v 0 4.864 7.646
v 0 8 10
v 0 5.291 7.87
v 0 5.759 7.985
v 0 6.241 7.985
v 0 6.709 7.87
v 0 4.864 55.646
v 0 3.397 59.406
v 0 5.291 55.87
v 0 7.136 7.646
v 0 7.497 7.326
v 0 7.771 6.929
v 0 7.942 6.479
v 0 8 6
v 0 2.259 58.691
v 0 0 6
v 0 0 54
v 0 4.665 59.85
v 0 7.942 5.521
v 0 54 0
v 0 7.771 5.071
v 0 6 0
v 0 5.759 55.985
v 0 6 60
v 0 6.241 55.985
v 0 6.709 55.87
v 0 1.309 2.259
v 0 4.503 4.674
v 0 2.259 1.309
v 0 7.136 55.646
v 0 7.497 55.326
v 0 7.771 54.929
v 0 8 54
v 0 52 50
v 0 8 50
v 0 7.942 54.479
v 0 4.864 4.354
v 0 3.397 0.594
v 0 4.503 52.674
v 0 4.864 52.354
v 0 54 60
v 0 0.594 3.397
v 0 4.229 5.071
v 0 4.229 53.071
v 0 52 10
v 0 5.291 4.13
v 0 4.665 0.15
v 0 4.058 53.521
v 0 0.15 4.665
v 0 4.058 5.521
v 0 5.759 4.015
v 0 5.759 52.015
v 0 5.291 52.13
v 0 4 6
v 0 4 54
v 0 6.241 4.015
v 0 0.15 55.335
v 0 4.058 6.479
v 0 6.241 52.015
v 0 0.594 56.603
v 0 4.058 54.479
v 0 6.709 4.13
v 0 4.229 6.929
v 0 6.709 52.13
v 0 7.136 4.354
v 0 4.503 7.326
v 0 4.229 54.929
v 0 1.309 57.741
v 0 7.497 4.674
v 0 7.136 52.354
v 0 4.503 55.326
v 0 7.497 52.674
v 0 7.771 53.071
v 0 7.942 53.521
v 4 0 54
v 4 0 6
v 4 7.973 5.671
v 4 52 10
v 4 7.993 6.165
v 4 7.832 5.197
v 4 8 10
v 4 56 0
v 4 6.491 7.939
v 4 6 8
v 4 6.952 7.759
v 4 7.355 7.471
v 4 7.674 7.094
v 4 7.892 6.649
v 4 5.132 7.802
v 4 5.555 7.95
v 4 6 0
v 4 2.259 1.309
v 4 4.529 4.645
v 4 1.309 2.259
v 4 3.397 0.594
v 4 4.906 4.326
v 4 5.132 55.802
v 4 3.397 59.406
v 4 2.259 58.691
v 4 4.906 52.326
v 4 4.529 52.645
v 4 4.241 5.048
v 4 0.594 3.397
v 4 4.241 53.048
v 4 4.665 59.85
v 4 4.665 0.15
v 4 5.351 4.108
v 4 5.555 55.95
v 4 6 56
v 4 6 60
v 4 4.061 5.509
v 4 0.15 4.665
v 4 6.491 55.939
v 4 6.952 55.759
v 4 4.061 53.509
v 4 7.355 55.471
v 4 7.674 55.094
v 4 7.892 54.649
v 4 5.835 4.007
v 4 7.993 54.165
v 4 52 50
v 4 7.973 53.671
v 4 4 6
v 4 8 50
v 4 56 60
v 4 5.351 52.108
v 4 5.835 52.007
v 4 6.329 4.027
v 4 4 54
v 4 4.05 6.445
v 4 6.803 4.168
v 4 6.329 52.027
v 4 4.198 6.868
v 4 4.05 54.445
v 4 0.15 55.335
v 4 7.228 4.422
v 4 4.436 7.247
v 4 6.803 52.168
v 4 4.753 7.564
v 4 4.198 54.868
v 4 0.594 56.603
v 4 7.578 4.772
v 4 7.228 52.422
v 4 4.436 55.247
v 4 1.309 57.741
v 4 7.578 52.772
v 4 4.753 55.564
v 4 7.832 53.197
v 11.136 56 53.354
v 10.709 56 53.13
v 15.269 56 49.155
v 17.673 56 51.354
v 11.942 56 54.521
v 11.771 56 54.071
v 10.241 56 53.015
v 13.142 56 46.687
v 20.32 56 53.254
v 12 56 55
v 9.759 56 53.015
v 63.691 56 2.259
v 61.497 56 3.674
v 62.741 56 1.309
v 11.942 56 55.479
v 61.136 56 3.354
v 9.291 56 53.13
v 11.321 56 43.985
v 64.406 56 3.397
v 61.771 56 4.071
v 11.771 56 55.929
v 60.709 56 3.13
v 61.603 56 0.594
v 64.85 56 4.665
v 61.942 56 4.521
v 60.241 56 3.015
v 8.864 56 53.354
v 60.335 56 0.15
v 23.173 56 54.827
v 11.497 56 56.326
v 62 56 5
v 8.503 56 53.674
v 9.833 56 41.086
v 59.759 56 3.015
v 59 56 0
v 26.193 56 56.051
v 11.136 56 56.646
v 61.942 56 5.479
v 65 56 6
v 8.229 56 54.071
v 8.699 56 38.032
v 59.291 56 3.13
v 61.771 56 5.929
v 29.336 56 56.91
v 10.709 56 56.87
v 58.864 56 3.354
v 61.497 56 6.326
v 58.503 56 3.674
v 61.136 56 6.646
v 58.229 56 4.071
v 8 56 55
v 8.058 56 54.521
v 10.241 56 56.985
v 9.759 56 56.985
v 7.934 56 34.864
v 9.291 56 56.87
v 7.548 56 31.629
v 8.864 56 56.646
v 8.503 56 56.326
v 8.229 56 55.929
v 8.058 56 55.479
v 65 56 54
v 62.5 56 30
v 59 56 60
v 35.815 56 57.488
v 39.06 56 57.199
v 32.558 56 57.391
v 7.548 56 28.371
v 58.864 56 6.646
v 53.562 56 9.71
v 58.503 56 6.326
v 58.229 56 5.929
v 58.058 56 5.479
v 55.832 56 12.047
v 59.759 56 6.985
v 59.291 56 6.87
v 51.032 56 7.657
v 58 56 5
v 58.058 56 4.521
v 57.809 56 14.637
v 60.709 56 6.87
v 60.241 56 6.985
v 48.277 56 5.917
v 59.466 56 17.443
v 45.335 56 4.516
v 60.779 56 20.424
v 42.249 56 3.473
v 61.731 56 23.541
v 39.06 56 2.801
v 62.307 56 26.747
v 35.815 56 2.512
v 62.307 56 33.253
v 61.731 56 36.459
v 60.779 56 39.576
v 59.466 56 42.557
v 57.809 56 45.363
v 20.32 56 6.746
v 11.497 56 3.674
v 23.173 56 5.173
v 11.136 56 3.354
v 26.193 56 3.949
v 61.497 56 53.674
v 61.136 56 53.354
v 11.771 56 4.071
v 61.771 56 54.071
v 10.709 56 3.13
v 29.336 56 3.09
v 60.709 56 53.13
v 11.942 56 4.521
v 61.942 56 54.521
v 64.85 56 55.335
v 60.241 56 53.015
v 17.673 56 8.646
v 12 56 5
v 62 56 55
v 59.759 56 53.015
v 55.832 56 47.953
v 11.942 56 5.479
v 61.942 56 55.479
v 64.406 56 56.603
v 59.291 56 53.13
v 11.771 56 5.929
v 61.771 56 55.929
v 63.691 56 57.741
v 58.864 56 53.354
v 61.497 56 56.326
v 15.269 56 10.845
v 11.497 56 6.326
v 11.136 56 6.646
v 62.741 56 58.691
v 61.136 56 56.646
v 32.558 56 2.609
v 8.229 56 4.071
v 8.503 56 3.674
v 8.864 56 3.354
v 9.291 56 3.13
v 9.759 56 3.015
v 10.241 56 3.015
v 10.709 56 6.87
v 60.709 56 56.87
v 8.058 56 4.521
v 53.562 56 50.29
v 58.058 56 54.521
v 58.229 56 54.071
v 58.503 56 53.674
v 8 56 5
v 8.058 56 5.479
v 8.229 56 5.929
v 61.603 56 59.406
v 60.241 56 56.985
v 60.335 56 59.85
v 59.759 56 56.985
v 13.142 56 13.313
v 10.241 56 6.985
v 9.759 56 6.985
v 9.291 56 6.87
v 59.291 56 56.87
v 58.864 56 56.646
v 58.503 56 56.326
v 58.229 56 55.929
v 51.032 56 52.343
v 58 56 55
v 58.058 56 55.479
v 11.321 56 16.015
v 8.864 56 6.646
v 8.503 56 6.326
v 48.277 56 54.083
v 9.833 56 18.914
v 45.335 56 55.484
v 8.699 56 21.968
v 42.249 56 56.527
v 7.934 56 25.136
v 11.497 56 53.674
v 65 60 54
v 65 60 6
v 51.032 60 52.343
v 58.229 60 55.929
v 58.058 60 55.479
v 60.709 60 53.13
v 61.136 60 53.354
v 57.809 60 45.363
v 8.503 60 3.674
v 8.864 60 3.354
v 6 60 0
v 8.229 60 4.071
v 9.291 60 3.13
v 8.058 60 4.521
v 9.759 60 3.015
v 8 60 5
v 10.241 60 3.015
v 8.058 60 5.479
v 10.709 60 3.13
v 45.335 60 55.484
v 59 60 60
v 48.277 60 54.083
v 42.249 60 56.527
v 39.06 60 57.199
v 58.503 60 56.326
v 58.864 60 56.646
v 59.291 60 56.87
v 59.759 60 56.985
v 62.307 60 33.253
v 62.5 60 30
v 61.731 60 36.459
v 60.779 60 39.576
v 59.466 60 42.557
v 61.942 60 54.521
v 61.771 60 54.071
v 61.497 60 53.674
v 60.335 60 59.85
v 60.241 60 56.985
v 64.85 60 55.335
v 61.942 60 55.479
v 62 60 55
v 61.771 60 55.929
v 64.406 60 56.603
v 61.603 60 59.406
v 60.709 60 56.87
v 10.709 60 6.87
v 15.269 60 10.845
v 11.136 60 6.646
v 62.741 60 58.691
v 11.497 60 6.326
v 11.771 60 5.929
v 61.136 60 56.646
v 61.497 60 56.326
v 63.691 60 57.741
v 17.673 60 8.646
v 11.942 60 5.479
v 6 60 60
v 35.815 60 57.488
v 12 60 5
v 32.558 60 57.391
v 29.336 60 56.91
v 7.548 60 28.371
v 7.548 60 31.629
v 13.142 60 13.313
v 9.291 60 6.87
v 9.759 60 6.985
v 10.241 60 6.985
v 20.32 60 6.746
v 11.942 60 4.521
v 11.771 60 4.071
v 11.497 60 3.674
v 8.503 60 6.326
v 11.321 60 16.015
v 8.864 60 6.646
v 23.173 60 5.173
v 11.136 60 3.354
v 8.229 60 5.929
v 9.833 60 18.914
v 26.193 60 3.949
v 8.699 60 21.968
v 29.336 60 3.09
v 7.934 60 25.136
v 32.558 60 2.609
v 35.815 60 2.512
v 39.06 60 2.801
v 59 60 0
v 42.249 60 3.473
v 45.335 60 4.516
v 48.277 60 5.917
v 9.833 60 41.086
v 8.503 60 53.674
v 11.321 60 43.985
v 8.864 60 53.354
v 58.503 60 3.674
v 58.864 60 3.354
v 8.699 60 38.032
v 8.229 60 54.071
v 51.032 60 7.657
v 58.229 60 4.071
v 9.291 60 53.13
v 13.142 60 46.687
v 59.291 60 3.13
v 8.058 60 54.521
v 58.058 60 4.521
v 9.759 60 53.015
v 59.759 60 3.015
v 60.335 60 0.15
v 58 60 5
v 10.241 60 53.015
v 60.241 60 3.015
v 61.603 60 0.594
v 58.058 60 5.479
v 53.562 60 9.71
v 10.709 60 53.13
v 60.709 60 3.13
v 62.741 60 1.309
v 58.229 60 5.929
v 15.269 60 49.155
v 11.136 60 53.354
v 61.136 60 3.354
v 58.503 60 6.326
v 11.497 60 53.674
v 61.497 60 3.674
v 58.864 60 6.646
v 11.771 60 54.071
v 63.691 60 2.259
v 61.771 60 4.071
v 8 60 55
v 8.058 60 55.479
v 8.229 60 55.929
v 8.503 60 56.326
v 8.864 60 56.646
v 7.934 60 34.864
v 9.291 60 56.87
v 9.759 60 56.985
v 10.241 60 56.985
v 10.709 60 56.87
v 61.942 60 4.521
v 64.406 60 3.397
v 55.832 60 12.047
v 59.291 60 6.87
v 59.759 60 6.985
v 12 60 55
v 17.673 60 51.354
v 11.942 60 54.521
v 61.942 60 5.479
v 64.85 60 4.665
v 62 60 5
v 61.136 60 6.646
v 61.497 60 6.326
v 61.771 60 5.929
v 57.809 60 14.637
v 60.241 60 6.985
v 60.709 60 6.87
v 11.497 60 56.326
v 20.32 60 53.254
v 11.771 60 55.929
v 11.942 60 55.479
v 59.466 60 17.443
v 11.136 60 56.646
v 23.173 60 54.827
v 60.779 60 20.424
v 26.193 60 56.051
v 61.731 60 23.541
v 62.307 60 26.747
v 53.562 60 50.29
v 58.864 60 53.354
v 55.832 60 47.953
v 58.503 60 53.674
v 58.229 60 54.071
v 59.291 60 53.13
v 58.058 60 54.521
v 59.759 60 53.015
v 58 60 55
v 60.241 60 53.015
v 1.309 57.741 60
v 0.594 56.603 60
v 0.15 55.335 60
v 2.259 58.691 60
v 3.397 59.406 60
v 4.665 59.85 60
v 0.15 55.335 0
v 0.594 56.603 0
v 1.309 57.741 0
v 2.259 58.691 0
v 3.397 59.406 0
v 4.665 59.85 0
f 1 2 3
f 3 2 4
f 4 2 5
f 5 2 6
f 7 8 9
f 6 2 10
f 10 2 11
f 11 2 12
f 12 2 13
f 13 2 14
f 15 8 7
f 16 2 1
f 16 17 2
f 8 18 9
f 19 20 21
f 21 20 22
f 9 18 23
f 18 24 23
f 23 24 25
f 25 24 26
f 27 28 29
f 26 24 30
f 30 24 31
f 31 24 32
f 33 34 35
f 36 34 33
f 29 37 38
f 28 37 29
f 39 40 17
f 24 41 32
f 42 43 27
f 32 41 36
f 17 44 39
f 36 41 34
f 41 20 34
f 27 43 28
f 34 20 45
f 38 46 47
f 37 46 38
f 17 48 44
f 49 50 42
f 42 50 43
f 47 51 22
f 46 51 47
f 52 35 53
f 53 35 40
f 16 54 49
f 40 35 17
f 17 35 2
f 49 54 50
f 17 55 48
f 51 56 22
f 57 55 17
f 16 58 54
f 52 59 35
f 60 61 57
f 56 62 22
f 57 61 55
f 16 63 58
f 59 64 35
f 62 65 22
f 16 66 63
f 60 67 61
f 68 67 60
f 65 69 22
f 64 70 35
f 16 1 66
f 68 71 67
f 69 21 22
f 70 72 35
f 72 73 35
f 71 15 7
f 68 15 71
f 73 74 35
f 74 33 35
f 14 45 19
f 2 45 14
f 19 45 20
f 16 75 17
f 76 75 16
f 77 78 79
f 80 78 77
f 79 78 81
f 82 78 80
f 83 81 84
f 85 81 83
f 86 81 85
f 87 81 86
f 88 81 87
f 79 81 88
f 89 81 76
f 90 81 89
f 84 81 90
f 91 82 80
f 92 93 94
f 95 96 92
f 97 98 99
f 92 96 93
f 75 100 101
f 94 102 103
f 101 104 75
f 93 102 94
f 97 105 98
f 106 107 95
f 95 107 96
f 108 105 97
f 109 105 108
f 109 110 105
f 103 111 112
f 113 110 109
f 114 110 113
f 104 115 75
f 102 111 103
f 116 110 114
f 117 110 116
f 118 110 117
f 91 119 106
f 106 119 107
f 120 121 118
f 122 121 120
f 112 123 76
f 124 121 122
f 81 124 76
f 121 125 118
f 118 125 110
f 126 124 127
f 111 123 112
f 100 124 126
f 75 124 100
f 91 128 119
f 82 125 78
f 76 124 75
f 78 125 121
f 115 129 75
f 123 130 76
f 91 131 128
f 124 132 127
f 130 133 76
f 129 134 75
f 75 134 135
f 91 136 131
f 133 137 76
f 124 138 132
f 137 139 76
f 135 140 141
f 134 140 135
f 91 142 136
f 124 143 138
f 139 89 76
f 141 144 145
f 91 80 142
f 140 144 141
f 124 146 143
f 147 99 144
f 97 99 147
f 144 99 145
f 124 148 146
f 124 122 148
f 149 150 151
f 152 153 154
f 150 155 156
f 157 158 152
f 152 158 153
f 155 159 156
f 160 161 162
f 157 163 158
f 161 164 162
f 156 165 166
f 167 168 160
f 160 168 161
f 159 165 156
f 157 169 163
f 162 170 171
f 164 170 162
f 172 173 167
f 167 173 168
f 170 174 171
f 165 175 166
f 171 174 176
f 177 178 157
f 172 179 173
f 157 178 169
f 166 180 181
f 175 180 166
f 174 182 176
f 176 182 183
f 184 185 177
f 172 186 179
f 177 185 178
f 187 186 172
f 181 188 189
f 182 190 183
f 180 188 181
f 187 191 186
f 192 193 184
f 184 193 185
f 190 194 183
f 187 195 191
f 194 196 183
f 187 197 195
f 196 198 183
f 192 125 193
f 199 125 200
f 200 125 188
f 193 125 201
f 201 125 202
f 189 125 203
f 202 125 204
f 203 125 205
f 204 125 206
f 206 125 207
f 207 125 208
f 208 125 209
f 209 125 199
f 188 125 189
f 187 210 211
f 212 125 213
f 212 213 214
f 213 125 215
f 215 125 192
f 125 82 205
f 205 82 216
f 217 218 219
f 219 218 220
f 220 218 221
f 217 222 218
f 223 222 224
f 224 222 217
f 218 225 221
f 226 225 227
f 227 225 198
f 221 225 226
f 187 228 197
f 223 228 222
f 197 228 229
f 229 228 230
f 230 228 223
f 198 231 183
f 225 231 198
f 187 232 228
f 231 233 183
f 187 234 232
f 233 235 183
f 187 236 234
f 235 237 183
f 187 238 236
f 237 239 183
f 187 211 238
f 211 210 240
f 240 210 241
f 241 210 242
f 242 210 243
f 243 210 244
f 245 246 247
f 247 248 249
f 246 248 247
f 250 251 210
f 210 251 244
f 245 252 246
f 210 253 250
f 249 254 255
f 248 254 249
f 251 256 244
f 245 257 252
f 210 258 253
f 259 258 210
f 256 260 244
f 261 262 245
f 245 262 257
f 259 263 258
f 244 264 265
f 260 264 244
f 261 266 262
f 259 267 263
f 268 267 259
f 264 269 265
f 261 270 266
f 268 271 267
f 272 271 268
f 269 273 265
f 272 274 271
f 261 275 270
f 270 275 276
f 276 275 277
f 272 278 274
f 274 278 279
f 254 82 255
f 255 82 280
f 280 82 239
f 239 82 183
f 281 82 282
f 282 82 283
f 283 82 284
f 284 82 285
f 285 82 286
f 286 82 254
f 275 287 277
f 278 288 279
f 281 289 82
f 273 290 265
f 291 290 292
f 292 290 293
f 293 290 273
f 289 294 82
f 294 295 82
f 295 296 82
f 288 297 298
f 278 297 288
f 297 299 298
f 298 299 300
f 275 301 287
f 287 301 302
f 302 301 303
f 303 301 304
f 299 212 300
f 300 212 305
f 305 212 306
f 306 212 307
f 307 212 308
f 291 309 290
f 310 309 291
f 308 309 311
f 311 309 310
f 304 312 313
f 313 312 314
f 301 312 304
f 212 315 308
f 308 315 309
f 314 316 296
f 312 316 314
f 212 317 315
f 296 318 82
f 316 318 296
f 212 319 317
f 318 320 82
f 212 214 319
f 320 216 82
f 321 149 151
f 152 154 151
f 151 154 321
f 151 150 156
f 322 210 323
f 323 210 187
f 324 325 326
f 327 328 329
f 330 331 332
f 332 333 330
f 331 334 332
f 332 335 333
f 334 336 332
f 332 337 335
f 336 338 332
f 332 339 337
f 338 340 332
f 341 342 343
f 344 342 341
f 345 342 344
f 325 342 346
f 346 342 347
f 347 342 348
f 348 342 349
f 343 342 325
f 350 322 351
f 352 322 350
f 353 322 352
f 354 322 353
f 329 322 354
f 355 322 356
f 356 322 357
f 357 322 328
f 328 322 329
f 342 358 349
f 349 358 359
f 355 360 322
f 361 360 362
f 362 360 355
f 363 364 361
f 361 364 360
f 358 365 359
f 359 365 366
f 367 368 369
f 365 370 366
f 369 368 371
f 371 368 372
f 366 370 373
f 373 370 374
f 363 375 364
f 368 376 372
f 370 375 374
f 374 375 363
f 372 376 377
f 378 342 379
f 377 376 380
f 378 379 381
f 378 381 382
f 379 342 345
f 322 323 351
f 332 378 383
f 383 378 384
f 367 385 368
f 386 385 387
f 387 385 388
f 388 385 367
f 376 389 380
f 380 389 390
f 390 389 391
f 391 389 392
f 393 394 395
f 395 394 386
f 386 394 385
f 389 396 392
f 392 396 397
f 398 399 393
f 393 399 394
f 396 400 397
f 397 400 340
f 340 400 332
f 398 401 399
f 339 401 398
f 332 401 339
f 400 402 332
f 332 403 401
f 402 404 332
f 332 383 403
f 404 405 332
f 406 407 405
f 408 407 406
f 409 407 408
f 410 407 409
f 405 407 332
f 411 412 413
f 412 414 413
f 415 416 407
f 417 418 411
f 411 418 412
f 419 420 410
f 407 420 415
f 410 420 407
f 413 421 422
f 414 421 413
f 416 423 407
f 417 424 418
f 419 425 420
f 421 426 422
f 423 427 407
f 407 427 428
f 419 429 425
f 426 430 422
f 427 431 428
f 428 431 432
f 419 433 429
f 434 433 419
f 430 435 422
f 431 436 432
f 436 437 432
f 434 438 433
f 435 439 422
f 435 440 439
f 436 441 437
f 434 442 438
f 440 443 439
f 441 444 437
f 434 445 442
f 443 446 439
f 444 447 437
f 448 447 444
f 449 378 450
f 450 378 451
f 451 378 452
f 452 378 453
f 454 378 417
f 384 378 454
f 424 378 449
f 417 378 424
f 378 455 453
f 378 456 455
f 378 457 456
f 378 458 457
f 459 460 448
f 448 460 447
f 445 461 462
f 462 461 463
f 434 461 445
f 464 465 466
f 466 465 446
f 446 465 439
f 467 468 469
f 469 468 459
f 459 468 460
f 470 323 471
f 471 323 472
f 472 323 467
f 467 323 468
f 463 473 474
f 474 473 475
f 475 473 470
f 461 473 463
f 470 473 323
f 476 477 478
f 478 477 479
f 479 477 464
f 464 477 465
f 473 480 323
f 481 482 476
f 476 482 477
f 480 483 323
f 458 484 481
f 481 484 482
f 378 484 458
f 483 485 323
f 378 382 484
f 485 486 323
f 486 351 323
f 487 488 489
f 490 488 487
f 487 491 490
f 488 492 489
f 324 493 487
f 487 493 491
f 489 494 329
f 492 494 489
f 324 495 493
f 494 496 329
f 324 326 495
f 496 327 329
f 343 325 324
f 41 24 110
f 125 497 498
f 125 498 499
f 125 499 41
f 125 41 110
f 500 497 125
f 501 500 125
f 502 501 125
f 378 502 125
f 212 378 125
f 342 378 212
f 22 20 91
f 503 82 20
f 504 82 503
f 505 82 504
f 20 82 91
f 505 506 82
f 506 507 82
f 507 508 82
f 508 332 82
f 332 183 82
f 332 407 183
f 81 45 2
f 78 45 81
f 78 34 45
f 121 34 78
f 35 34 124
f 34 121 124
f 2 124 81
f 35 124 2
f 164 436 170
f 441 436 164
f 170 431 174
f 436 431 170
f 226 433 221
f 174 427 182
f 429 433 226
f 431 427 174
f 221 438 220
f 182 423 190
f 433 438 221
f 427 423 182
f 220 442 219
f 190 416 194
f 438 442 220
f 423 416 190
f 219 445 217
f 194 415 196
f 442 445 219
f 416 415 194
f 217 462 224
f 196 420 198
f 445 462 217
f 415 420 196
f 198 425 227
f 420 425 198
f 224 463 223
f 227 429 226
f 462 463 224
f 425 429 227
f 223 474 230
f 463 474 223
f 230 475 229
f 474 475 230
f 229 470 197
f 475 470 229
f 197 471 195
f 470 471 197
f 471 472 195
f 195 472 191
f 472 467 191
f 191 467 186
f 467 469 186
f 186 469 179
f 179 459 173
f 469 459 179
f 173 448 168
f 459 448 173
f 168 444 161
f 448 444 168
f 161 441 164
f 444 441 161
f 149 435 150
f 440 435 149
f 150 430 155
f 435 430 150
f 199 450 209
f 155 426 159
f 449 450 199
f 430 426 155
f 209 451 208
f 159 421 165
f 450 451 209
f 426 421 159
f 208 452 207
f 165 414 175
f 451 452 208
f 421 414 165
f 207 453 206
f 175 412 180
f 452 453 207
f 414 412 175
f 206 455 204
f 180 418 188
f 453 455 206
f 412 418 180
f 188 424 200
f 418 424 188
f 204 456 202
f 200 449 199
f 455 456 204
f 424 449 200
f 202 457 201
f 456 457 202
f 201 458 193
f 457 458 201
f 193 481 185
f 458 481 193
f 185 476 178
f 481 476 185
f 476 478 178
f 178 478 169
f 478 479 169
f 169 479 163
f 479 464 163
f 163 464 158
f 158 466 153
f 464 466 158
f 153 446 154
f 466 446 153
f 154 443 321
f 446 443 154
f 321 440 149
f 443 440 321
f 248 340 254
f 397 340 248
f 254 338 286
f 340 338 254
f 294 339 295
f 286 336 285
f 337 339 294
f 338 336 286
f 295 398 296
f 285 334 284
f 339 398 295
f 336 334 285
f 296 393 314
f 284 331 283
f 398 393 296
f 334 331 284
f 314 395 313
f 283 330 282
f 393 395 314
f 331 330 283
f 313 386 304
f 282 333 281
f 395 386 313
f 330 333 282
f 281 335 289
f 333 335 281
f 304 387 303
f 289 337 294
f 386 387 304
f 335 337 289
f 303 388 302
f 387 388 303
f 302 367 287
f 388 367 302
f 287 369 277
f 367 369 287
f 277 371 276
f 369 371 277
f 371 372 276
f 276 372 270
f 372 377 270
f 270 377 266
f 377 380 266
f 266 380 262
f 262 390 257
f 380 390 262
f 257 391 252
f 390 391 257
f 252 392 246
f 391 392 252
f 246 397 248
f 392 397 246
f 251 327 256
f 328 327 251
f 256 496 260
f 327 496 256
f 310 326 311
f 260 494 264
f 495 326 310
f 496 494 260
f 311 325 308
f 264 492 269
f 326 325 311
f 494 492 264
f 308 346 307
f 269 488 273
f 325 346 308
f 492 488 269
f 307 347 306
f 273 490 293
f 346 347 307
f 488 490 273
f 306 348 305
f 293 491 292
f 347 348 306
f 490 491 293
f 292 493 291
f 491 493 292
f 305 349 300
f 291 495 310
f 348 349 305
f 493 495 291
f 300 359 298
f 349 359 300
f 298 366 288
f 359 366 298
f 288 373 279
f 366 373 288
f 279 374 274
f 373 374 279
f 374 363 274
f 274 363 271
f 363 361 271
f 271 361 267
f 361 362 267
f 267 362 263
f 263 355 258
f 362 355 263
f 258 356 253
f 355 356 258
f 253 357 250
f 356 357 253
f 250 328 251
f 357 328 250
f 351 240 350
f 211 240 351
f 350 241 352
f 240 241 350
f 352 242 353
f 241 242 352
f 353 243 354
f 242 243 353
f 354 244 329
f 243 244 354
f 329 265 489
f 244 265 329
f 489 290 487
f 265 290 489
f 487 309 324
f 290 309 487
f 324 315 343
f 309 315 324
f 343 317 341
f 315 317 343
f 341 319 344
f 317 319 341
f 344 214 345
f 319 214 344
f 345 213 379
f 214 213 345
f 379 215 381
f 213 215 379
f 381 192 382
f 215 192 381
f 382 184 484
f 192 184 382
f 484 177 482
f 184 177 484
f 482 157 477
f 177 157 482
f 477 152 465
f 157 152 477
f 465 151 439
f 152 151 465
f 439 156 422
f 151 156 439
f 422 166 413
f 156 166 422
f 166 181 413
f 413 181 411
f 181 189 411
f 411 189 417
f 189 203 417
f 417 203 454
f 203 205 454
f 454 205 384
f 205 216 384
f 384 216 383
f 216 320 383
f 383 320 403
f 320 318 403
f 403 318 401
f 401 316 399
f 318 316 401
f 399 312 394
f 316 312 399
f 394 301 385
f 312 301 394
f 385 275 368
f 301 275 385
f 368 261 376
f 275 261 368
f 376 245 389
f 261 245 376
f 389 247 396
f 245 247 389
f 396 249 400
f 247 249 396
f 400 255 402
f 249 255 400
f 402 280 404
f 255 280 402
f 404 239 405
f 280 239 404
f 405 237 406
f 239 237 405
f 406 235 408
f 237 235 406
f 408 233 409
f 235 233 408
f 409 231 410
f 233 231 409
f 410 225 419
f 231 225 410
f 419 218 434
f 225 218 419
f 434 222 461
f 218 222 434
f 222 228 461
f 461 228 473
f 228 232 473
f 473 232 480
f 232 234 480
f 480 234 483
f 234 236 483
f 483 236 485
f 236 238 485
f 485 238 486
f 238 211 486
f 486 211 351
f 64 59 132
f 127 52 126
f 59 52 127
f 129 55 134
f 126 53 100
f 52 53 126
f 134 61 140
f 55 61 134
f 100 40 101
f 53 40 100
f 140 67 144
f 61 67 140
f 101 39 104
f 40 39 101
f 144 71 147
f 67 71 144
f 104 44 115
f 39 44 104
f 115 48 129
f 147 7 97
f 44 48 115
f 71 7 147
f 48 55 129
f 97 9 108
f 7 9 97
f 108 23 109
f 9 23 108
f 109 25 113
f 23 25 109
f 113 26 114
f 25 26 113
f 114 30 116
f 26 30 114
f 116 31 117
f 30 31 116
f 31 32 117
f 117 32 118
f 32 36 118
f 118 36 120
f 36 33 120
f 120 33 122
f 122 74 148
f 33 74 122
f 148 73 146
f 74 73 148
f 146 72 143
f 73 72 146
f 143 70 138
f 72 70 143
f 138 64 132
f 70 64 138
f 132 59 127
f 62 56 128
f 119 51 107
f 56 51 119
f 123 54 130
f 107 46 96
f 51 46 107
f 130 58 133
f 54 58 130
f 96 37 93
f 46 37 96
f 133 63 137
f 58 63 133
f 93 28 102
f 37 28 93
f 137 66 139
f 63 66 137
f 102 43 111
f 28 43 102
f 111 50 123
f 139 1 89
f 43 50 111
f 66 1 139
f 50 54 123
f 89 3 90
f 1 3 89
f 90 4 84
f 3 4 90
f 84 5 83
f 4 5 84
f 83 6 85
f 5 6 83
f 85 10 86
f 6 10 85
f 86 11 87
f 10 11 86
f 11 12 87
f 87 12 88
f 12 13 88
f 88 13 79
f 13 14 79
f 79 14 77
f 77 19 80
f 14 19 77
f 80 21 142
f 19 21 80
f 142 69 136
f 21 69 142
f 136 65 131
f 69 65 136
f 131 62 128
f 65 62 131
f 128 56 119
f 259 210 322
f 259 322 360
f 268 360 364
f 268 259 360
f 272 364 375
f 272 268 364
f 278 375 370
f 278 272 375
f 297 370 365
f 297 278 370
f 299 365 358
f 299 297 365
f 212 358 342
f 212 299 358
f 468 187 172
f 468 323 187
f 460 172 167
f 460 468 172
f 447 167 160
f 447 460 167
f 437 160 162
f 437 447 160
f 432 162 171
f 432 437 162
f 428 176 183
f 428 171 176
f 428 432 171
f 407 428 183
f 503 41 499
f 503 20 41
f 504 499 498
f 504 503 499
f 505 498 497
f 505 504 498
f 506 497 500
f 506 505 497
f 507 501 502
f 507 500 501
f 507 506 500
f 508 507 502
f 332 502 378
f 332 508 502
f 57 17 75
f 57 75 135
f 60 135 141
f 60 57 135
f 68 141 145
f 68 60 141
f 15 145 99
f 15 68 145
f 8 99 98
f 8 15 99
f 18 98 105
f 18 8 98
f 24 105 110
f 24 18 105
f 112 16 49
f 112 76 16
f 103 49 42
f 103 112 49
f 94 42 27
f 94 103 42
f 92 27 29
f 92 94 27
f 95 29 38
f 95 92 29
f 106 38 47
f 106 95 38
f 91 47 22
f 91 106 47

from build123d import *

# Parameters (mm, degrees)
RESSALTO_EXTRUS_O1_DEPTH = 60
ESBO_O2_W                = 40
ESBO_O2_H                = 44
CORTE_EXTRUS_O1_DEPTH    = 66
CORTE_EXTRUS_O3_REACH    = 62
ESBO_O4_R                = 2
ESBO_O5_R                = 27.5
CORTE_EXTRUS_O4_DEPTH    = 5
ESBO_O6_R                = 2
CORTE_EXTRUS_O5_DEPTH    = 10
FILETE2_R                = 6


with BuildPart() as part:
    # Esboço1 → Ressalto-extrusão1 (new body)
    with BuildSketch(Plane.XY):
        Polygon((0, 0), (4, 0), (4, 56), (65, 56), (65, 60), (0, 60), align=None)
    extrude(amount=RESSALTO_EXTRUS_O1_DEPTH)

    # Esboço2 → Corte-extrusão1 (cut, through all)
    with BuildSketch(Plane.ZY):
        with Locations((30, 30)):
            Rectangle(ESBO_O2_W, ESBO_O2_H)
    extrude(amount=-CORTE_EXTRUS_O1_DEPTH, mode=Mode.SUBTRACT)

    # Esboço4 → Corte-extrusão3 (cut, up to next)
    with BuildSketch(Plane.ZX.offset(60), mode=Mode.PRIVATE) as corte_extrus_o3_sk1:
        with Locations((5, 60)):
            Circle(ESBO_O4_R)
    corte_extrus_o3_tool1 = extrude(corte_extrus_o3_sk1.sketch, amount=-CORTE_EXTRUS_O3_REACH, mode=Mode.PRIVATE) & part.part
    add(corte_extrus_o3_tool1.solids().sort_by_distance((60, 60, 5))[0], mode=Mode.SUBTRACT)
    # Esboço4 → Corte-extrusão3 (cut, up to next)
    with BuildSketch(Plane.ZX.offset(60), mode=Mode.PRIVATE) as corte_extrus_o3_sk2:
        with Locations((55, 60)):
            Circle(ESBO_O4_R)
    corte_extrus_o3_tool2 = extrude(corte_extrus_o3_sk2.sketch, amount=-CORTE_EXTRUS_O3_REACH, mode=Mode.PRIVATE) & part.part
    add(corte_extrus_o3_tool2.solids().sort_by_distance((60, 60, 55))[0], mode=Mode.SUBTRACT)
    # Esboço4 → Corte-extrusão3 (cut, up to next)
    with BuildSketch(Plane.ZX.offset(60), mode=Mode.PRIVATE) as corte_extrus_o3_sk3:
        with Locations((5, 10)):
            Circle(ESBO_O4_R)
    corte_extrus_o3_tool3 = extrude(corte_extrus_o3_sk3.sketch, amount=-CORTE_EXTRUS_O3_REACH, mode=Mode.PRIVATE) & part.part
    add(corte_extrus_o3_tool3.solids().sort_by_distance((10, 60, 5))[0], mode=Mode.SUBTRACT)
    # Esboço4 → Corte-extrusão3 (cut, up to next)
    with BuildSketch(Plane.ZX.offset(60), mode=Mode.PRIVATE) as corte_extrus_o3_sk4:
        with Locations((55, 10)):
            Circle(ESBO_O4_R)
    corte_extrus_o3_tool4 = extrude(corte_extrus_o3_sk4.sketch, amount=-CORTE_EXTRUS_O3_REACH, mode=Mode.PRIVATE) & part.part
    add(corte_extrus_o3_tool4.solids().sort_by_distance((10, 60, 55))[0], mode=Mode.SUBTRACT)

    # Esboço5 → Corte-extrusão4 (cut, through all)
    with BuildSketch(Plane(origin=(0, 56, 0), x_dir=(0, 0, -1), z_dir=(0, -1, 0))):
        with Locations((-30, 35)):
            Circle(ESBO_O5_R)
    extrude(amount=-CORTE_EXTRUS_O4_DEPTH, mode=Mode.SUBTRACT)

    # Esboço6 → Corte-extrusão5 (cut)
    with BuildSketch(Plane.ZY):
        with Locations((6, 6)):
            Circle(ESBO_O6_R)
        with Locations((54, 6)):
            Circle(ESBO_O6_R)
    extrude(amount=-CORTE_EXTRUS_O5_DEPTH, mode=Mode.SUBTRACT)

    # Filete2
    filete2_edges = [part.edges().sort_by_distance(p)[0] for p in [
        (0, 60, 30),
        (65, 58, 60),
        (65, 58, 0),
        (2, 0, 60),
        (2, 0, 0),
    ]]
    fillet(filete2_edges, radius=FILETE2_R)


solid = part.part
